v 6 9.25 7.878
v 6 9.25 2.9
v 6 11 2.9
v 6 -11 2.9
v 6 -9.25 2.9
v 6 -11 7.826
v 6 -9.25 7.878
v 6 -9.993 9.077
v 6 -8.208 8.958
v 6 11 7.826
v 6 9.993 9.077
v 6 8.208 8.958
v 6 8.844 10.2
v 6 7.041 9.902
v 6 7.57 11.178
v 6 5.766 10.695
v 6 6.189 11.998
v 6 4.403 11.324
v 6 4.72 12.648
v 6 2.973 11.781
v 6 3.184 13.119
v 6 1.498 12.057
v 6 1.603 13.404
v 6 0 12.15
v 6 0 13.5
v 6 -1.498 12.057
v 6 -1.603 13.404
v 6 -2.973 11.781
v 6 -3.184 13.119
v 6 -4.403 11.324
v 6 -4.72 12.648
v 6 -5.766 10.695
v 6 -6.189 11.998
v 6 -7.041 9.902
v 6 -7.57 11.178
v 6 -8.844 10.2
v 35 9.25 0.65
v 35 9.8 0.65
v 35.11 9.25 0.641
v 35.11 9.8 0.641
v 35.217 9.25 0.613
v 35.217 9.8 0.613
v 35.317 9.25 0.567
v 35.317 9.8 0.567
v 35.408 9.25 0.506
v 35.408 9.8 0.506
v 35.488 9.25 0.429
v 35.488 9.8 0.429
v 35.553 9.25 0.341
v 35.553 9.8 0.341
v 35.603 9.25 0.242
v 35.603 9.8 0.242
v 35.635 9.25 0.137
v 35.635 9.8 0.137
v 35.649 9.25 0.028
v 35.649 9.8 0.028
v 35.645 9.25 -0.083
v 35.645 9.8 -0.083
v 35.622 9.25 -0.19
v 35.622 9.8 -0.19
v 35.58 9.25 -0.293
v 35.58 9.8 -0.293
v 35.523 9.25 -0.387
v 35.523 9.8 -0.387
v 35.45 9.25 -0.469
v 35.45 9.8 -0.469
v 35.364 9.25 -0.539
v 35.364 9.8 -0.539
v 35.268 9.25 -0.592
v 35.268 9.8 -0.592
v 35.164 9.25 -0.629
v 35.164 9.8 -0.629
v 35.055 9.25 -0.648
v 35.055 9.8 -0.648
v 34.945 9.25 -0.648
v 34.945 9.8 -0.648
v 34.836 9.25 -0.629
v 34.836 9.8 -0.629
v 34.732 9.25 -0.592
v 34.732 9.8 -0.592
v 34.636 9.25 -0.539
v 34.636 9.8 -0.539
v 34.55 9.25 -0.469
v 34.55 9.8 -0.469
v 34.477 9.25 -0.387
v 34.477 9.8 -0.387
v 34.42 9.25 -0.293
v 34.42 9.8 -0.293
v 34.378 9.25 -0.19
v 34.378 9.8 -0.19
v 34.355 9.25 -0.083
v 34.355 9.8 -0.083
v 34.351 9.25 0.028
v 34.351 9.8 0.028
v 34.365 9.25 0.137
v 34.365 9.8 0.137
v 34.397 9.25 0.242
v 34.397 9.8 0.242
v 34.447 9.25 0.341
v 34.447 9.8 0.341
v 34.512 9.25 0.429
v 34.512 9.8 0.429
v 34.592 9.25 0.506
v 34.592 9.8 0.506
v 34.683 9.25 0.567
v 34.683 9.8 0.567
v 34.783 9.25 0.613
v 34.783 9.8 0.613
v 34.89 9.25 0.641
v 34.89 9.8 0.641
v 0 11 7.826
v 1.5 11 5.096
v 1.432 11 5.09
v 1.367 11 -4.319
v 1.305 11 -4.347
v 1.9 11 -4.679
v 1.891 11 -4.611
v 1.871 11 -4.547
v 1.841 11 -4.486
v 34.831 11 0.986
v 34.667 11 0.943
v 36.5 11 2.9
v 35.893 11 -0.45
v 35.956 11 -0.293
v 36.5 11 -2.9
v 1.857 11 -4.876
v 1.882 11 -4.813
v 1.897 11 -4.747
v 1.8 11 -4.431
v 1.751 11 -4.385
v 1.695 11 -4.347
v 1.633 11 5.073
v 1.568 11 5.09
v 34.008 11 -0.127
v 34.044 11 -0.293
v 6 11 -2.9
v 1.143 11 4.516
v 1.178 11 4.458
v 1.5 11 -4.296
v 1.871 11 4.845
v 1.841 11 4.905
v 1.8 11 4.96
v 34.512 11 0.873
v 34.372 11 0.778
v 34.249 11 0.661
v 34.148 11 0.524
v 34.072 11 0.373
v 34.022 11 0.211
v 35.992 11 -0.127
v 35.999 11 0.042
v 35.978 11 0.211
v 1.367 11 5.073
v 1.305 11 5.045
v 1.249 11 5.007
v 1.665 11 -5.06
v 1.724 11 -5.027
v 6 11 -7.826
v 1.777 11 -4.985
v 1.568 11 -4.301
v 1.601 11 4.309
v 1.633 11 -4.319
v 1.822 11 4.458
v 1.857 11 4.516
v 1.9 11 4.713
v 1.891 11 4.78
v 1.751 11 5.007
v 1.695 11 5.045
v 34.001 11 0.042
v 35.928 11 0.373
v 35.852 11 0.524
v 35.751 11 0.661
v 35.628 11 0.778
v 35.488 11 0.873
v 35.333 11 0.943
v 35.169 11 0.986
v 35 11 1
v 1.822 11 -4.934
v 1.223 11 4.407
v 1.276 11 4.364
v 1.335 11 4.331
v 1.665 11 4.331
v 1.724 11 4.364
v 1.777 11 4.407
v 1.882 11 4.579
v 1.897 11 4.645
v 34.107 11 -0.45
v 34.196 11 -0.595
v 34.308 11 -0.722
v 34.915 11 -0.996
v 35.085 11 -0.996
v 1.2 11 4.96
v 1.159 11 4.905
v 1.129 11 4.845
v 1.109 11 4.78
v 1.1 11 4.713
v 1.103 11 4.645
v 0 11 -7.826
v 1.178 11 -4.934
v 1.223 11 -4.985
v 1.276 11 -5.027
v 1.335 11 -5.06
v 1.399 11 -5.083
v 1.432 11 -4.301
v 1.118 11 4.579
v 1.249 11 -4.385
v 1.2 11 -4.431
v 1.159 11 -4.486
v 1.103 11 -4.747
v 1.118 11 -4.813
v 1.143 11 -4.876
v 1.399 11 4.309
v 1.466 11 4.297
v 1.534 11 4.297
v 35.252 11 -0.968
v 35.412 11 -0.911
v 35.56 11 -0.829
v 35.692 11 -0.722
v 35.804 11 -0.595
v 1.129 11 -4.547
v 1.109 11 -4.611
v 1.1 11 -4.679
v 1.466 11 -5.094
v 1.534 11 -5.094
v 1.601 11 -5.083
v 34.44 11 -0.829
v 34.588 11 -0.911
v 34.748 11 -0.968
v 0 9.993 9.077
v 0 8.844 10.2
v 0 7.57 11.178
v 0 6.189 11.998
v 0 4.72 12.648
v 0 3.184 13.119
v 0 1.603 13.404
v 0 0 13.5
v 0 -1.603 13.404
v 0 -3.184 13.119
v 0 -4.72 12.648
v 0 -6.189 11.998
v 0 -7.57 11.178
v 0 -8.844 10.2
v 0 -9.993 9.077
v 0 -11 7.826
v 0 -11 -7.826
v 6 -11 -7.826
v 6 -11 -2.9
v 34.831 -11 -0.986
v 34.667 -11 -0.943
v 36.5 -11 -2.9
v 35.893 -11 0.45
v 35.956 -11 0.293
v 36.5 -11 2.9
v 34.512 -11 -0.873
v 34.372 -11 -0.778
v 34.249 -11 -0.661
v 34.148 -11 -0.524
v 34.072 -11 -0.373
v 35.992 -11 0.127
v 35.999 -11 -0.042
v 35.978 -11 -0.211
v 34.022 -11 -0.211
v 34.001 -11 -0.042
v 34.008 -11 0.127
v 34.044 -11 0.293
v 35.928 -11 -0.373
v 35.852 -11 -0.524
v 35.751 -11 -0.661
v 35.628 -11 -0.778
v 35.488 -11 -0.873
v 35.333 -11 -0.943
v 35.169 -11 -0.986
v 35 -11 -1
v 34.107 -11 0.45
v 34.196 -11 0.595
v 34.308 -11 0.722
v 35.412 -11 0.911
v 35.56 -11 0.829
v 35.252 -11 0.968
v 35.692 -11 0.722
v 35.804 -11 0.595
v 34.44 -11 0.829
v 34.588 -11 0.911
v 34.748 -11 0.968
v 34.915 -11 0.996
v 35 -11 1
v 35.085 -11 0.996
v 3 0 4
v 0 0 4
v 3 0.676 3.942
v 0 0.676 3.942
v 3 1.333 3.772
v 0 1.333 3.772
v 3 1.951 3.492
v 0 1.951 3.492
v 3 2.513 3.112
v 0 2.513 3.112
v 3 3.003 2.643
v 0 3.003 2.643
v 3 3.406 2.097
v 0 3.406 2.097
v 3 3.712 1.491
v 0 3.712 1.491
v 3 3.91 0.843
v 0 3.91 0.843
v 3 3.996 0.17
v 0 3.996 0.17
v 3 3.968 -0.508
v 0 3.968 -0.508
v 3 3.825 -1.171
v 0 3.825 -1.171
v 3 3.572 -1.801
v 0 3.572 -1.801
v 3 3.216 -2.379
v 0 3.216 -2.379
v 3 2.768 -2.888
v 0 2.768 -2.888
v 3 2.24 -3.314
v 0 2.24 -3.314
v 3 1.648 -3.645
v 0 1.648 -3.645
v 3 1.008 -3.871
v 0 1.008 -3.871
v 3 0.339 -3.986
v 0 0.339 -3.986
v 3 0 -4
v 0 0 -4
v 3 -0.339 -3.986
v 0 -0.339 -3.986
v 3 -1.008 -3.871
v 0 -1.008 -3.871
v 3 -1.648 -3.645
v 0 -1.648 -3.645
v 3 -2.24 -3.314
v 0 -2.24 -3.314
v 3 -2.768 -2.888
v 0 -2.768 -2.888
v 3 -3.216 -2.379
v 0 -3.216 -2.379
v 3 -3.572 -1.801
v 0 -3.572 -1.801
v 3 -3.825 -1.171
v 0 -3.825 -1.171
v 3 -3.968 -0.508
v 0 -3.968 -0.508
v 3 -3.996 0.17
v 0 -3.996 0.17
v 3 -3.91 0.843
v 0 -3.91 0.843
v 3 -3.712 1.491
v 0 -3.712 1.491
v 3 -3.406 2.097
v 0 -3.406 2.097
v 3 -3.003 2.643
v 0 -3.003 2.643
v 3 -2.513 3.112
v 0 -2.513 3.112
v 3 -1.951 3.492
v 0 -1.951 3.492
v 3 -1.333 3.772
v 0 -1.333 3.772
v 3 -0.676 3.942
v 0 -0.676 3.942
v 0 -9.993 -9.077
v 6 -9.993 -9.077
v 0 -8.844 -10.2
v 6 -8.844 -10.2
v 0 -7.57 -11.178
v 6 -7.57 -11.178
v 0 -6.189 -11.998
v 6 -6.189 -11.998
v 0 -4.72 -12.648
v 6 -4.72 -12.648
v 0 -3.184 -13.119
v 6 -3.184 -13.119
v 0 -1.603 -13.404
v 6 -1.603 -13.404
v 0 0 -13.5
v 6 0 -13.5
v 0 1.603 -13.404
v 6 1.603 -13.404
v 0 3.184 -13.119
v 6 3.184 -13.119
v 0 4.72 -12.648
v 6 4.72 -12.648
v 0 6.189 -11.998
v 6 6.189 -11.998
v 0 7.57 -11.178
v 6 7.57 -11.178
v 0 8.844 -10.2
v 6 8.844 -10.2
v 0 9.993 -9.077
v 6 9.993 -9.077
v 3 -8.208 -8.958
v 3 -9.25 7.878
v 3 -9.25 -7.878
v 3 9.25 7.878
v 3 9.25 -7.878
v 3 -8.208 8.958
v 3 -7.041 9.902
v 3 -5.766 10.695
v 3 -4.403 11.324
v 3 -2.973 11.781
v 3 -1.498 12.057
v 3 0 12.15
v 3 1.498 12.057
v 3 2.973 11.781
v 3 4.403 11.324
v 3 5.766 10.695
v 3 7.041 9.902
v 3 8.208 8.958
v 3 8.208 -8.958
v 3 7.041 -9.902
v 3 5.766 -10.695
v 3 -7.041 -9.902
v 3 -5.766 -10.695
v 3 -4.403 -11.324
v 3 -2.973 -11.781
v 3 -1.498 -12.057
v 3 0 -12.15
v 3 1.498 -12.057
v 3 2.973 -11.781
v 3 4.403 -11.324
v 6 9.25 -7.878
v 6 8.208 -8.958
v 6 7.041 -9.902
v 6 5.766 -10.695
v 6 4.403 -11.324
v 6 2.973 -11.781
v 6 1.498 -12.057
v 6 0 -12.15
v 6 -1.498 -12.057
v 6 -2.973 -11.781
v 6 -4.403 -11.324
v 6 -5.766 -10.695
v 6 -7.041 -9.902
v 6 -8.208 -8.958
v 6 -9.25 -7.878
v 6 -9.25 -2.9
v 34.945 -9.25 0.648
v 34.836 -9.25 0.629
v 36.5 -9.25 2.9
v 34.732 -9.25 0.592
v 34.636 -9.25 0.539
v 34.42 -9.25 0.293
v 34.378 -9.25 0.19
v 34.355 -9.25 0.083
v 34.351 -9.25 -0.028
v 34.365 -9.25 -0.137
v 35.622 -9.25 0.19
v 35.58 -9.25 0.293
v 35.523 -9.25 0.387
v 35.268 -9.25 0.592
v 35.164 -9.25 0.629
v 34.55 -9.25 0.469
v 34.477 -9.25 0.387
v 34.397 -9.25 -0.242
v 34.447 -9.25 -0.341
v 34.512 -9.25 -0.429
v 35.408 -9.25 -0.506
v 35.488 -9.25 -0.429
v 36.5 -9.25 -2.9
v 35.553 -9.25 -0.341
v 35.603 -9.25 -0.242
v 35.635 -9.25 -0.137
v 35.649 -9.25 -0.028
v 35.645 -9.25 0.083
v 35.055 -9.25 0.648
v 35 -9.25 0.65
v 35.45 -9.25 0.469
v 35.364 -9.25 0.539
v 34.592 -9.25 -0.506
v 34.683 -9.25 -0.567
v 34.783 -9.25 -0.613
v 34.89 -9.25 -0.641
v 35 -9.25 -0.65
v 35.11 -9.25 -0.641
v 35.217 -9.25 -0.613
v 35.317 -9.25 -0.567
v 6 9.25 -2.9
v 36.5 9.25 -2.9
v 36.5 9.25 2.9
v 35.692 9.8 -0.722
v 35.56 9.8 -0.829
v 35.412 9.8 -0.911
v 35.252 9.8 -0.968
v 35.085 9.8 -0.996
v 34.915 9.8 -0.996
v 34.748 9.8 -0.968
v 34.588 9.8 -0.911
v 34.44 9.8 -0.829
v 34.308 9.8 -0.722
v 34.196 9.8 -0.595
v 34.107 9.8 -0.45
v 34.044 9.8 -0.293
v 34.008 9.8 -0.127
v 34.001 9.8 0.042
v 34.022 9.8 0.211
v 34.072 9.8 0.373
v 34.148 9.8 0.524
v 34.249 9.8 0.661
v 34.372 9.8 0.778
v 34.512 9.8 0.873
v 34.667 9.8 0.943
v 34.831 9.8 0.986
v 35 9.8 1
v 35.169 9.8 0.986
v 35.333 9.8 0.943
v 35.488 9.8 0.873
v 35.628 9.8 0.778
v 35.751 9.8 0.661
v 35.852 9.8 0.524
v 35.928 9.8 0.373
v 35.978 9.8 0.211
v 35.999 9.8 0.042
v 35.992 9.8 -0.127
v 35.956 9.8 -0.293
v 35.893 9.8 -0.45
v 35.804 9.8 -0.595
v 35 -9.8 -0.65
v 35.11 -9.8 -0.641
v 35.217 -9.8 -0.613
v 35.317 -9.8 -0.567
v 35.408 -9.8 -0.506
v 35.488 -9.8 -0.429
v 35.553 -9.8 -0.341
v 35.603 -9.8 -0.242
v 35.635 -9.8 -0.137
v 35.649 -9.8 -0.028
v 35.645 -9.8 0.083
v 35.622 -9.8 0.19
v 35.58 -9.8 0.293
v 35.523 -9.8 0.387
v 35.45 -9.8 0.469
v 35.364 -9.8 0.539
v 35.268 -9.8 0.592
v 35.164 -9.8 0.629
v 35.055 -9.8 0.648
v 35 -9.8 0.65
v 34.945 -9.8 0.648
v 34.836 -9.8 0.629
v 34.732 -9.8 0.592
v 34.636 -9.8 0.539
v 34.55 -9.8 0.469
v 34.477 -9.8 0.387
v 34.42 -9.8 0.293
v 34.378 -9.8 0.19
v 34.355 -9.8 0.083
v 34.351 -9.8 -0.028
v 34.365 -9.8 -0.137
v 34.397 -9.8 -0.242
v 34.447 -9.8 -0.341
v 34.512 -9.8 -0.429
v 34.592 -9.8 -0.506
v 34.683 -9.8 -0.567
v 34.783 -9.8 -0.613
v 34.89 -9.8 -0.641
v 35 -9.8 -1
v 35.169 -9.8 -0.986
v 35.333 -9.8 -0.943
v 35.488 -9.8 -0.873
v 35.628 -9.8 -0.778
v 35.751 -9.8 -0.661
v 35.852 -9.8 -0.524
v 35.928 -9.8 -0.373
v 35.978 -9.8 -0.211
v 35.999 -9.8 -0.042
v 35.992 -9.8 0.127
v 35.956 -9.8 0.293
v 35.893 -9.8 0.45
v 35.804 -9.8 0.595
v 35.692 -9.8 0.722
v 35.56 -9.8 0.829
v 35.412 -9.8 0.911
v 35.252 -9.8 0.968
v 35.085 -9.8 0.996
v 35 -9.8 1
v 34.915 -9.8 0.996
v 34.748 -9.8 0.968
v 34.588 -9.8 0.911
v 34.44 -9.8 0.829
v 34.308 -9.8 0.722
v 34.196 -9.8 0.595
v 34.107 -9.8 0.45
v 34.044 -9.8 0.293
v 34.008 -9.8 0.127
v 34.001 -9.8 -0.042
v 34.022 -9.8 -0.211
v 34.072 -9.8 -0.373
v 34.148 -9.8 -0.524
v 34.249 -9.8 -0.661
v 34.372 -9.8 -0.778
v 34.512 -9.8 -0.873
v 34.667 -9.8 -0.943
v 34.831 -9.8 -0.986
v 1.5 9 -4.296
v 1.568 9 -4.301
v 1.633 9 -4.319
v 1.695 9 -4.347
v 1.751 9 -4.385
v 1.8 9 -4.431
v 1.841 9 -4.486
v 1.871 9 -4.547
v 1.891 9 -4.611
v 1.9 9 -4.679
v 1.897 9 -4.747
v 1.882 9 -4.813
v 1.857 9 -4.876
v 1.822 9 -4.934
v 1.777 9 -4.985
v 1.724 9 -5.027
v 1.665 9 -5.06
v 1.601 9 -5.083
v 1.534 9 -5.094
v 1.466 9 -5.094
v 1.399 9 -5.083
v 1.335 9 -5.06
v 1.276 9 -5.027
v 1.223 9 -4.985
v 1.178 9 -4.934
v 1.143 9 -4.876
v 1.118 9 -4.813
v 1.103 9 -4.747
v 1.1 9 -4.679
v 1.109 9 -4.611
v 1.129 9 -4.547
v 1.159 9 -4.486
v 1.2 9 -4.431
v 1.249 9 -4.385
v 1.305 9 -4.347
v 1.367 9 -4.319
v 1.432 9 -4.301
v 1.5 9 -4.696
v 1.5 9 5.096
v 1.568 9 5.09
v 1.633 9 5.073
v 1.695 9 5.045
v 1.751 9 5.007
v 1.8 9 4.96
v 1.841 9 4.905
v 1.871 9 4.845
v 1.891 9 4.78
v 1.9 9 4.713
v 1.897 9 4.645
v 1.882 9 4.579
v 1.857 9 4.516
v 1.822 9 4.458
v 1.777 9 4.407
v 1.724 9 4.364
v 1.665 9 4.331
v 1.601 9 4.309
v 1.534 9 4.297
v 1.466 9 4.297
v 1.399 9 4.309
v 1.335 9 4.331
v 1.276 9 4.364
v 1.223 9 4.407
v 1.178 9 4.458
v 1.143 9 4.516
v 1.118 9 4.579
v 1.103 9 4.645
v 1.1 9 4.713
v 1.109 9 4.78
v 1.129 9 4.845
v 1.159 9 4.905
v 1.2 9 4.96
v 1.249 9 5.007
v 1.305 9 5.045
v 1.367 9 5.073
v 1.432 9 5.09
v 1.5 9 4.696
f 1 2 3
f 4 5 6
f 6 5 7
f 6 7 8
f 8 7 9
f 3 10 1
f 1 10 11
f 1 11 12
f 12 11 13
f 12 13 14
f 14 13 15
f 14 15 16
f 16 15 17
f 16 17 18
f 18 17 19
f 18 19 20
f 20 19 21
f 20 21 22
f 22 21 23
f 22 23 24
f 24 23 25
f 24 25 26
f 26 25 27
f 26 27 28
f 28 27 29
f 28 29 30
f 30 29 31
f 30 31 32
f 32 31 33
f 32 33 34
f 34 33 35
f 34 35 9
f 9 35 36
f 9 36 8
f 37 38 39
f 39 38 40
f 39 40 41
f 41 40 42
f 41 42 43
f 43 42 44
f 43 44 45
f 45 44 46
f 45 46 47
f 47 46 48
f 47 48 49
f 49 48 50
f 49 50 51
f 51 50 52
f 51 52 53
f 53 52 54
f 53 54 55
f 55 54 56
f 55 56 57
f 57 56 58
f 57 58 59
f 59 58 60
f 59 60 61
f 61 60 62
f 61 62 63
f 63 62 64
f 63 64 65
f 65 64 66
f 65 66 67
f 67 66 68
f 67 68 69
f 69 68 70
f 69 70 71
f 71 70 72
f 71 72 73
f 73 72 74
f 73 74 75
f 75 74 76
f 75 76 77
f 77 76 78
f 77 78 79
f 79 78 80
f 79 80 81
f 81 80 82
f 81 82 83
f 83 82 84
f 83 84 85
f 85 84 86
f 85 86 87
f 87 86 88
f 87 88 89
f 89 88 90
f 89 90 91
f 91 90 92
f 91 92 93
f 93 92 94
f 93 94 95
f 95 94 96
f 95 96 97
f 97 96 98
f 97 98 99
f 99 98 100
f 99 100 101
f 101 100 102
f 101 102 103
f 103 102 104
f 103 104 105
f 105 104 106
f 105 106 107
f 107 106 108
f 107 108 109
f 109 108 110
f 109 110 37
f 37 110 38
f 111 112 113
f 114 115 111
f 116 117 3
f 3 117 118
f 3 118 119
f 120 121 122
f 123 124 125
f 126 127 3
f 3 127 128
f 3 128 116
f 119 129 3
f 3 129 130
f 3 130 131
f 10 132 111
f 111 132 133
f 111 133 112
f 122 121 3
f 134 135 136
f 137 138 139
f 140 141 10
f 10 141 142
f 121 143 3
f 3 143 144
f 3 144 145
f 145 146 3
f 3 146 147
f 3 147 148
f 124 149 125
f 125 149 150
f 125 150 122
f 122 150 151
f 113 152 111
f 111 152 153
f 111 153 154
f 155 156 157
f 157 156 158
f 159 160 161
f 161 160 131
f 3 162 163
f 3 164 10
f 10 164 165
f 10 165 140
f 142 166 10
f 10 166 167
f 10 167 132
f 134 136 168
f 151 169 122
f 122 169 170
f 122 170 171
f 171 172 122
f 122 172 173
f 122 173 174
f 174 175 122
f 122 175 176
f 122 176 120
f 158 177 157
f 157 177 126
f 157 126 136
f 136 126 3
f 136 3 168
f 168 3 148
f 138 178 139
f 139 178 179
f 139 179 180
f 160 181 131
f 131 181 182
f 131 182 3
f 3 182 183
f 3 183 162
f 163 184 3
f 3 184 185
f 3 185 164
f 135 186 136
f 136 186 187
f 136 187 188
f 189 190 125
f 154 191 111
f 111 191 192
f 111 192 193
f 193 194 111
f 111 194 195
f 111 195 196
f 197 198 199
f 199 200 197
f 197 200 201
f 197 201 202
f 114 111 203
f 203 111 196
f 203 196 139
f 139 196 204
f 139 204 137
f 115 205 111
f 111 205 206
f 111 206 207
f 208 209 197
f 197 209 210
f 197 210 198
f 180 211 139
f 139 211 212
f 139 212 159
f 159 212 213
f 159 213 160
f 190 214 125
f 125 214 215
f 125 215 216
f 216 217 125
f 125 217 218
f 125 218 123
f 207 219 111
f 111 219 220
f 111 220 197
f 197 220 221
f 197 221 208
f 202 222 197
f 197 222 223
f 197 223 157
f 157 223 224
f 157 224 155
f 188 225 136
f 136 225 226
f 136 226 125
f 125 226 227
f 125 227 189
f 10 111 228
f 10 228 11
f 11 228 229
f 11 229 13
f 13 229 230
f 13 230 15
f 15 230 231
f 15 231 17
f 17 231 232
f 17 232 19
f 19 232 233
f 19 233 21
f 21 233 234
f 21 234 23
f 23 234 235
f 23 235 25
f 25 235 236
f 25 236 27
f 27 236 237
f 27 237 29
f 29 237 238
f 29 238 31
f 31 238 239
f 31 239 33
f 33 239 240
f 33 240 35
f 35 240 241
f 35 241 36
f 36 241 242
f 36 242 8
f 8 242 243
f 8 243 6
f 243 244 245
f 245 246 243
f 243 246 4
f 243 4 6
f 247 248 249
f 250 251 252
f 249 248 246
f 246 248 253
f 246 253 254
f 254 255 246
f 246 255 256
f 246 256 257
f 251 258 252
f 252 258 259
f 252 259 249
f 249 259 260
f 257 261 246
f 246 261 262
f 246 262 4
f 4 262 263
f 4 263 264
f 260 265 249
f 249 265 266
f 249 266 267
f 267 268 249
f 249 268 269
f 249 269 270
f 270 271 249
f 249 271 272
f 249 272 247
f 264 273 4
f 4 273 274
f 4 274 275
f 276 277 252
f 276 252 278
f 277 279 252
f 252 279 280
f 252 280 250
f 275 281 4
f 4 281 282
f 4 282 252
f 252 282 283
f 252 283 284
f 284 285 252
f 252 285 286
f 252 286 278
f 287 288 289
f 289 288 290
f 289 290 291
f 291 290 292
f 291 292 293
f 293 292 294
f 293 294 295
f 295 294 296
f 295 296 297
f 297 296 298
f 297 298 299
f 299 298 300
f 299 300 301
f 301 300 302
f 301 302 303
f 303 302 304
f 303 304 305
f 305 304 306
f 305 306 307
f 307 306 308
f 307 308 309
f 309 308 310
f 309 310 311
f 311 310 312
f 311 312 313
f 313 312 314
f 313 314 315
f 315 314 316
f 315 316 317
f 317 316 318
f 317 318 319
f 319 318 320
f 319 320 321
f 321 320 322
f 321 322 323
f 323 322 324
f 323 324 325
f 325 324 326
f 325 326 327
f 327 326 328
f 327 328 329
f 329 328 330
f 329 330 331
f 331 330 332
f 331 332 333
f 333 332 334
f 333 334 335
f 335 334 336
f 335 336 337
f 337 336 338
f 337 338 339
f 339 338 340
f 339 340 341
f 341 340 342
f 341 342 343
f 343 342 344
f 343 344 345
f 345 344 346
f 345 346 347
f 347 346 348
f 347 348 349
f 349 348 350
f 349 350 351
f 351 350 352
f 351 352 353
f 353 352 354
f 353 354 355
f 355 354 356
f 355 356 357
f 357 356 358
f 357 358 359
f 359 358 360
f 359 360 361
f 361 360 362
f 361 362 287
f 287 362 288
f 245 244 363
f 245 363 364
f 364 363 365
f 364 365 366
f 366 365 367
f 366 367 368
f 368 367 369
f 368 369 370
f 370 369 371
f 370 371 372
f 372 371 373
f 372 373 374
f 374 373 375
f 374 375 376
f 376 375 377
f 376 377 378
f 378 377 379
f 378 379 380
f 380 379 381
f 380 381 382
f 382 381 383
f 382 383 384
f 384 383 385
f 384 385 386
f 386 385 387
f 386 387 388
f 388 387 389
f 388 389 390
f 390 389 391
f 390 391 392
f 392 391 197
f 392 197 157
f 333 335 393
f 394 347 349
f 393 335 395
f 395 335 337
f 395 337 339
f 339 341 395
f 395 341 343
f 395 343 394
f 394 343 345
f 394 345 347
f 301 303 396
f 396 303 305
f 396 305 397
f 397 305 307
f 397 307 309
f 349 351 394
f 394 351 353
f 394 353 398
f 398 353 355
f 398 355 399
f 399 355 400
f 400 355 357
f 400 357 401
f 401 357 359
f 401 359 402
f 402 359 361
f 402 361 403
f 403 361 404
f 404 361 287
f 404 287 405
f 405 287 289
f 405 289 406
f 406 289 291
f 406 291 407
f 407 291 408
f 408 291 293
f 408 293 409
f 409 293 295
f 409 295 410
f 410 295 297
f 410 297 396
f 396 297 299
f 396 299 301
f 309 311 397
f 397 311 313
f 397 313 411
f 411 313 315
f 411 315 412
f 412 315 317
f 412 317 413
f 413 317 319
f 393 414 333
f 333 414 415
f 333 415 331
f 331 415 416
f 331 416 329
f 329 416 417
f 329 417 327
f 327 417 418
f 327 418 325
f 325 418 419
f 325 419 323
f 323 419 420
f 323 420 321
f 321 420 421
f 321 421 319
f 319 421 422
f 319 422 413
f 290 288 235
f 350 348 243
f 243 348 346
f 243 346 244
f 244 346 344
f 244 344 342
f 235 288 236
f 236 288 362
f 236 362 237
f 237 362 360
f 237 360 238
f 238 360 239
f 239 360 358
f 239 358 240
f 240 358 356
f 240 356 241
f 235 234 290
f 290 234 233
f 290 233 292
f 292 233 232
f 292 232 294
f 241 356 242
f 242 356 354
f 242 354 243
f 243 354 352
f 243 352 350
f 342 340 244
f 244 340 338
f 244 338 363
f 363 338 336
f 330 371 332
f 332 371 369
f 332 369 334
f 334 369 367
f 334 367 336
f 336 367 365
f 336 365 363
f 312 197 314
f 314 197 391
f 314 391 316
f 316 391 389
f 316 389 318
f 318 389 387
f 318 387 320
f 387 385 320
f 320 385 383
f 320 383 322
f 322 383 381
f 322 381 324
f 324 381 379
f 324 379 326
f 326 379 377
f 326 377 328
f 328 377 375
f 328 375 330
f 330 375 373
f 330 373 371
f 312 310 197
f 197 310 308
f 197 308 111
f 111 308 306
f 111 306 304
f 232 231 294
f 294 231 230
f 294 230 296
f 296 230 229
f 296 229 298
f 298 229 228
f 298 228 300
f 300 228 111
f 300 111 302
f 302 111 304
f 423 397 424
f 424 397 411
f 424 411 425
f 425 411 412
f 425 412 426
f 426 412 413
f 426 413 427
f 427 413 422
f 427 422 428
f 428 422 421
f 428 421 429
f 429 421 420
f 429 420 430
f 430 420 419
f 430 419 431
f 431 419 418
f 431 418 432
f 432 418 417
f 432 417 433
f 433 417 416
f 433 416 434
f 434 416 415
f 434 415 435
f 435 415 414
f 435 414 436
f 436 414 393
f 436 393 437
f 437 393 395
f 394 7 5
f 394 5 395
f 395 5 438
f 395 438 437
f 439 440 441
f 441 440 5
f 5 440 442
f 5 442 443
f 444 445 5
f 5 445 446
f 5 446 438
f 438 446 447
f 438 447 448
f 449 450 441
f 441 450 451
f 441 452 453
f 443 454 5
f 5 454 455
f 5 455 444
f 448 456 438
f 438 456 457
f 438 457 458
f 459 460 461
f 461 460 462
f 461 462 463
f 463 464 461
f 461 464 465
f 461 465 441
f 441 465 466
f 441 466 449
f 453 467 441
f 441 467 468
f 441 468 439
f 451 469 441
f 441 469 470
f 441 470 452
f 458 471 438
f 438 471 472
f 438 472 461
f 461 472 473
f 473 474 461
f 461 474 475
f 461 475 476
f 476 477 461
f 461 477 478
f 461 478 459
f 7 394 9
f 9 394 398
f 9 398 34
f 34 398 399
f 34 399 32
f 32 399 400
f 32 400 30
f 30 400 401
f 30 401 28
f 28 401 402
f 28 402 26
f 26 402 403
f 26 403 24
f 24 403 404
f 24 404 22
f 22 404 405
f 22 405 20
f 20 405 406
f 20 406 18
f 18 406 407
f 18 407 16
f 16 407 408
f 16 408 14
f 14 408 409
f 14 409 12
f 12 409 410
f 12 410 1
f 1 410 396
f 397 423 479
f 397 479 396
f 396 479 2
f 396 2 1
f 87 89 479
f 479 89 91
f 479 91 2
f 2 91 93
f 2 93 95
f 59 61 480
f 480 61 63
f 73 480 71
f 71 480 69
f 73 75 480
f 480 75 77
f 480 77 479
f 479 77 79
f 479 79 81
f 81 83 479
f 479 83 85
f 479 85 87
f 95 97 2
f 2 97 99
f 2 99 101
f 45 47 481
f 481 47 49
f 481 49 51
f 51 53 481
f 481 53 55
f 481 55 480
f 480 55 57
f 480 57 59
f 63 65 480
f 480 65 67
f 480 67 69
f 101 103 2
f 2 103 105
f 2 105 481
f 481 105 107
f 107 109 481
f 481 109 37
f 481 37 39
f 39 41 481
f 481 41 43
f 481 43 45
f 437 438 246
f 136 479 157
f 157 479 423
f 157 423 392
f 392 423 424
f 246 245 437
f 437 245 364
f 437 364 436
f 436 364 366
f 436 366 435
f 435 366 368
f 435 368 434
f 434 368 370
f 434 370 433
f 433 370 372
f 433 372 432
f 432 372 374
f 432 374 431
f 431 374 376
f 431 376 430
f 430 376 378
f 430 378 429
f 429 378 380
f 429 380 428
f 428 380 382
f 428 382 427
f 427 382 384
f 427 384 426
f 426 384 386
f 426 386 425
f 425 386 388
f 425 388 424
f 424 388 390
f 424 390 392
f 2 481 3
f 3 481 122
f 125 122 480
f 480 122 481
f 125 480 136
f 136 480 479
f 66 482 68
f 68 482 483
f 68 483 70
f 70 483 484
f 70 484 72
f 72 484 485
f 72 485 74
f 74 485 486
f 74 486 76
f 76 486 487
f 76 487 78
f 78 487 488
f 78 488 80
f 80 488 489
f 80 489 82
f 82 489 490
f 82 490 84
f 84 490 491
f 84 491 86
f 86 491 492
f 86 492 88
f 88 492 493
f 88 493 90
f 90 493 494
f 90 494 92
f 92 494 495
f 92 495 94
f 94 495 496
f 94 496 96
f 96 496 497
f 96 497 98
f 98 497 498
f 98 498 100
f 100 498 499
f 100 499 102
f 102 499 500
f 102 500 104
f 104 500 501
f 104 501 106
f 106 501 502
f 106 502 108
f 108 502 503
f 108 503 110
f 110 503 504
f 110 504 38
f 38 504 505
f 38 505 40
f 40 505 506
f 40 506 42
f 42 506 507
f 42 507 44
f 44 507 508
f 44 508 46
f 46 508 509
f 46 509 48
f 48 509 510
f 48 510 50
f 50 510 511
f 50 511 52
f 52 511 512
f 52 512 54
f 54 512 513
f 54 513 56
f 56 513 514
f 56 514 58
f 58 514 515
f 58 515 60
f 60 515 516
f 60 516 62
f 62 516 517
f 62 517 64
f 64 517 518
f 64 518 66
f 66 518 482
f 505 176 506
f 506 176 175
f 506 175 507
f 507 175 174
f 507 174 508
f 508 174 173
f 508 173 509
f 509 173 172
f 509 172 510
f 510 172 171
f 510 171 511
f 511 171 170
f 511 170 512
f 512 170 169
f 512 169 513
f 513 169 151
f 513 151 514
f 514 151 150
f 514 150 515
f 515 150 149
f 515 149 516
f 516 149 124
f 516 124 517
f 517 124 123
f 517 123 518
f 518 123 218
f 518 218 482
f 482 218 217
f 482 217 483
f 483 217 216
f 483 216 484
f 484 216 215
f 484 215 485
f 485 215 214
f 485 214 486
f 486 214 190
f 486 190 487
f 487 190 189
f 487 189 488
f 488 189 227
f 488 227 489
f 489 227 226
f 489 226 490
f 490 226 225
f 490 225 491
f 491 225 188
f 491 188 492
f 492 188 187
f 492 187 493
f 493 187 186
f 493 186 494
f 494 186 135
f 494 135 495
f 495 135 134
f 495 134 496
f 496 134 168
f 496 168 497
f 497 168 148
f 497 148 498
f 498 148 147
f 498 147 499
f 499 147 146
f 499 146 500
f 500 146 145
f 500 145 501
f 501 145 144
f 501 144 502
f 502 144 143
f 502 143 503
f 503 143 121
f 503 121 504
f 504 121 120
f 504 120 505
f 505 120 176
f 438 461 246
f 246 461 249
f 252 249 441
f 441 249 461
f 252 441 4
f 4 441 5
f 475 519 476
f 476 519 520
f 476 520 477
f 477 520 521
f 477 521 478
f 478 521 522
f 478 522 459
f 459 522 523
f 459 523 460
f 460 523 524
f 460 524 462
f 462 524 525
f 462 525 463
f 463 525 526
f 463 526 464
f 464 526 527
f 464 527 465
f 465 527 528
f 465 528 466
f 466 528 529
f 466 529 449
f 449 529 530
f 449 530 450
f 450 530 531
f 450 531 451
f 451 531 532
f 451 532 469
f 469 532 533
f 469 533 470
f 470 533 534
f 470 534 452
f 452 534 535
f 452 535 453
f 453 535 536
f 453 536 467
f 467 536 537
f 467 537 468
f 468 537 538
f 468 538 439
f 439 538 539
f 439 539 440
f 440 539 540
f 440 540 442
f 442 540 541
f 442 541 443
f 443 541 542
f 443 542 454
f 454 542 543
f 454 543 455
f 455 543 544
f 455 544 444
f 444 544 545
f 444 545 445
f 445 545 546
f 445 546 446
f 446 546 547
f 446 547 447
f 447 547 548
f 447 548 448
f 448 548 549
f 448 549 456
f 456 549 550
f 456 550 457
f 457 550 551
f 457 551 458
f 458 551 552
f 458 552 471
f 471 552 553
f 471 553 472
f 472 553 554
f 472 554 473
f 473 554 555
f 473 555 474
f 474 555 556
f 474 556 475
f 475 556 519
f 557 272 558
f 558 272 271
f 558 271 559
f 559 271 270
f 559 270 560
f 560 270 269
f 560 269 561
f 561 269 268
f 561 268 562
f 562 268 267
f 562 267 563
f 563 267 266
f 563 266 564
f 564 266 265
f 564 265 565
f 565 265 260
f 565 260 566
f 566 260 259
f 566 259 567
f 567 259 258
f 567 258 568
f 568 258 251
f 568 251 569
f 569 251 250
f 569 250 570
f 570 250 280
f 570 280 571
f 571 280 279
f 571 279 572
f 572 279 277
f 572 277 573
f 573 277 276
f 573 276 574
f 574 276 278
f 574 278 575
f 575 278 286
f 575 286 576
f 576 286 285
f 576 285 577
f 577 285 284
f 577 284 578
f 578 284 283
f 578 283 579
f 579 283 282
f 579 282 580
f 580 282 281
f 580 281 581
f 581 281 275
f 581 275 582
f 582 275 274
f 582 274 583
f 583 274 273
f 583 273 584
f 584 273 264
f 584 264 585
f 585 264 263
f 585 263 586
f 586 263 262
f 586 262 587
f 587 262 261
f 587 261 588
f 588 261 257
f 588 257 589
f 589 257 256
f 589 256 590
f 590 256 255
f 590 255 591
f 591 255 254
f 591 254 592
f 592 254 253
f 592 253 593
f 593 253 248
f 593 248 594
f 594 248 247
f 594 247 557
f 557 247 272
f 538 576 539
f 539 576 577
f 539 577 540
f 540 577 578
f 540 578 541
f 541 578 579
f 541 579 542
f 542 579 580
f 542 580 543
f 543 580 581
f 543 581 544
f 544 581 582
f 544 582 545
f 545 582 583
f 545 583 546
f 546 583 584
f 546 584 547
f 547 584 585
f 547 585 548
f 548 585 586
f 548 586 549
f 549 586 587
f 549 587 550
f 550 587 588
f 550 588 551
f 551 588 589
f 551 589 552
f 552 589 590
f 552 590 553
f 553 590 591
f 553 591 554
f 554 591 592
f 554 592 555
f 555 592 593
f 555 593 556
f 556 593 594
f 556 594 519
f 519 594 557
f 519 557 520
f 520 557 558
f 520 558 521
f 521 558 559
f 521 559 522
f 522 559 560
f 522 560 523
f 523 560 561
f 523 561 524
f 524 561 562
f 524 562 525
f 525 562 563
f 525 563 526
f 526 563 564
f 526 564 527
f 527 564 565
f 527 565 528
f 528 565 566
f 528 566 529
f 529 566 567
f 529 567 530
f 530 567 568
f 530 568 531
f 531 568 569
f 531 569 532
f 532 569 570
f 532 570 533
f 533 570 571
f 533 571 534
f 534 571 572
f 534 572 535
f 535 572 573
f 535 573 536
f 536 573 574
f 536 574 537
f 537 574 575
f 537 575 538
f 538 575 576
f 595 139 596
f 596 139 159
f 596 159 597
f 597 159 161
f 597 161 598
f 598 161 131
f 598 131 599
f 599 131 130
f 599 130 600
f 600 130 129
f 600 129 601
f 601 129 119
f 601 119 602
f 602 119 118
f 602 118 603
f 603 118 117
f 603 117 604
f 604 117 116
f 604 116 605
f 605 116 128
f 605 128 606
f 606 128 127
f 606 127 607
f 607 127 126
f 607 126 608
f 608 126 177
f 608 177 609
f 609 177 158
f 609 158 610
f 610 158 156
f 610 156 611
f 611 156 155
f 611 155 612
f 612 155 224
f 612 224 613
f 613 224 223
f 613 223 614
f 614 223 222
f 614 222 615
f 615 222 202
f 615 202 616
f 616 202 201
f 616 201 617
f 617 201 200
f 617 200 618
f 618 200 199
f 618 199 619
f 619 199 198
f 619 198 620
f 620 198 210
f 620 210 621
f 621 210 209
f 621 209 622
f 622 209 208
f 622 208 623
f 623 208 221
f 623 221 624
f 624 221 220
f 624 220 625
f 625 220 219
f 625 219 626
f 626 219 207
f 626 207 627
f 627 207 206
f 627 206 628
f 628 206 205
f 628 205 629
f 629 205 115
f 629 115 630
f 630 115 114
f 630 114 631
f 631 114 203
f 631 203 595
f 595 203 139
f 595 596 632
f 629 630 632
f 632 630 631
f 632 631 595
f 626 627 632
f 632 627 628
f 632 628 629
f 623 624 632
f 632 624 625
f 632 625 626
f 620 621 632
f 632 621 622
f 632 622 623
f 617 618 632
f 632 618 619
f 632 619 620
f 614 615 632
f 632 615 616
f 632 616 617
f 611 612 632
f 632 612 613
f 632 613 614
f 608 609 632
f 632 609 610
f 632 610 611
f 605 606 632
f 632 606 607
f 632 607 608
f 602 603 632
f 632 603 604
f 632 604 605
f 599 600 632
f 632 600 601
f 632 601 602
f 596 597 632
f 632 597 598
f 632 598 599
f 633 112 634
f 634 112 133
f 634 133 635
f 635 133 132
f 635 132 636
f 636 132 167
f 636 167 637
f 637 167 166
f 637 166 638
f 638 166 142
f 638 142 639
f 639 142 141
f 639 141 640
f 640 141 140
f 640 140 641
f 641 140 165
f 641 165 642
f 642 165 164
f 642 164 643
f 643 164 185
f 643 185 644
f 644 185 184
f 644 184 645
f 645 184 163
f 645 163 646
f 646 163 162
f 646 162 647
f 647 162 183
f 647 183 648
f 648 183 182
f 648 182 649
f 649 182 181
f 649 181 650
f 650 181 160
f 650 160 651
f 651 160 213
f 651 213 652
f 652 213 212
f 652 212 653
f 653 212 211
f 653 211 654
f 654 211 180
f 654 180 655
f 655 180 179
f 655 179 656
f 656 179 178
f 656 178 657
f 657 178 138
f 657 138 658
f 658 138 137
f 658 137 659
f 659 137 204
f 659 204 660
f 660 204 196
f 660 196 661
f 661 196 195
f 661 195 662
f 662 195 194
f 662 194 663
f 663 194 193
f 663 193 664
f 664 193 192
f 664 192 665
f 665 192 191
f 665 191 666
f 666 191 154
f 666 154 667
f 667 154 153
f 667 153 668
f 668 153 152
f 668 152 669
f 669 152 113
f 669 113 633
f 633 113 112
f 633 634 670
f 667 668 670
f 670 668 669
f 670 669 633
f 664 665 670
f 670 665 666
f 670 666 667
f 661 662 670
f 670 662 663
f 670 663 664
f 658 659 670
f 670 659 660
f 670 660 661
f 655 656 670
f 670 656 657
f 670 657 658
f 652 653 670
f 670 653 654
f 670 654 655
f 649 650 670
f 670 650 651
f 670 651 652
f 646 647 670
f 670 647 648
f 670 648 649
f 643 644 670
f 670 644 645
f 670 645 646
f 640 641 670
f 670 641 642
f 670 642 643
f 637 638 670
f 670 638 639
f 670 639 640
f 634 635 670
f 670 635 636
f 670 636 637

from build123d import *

# Parameters (mm, degrees)
SKETCH_1_R          = 4
EXTRUDE_1_DEPTH     = 3
EXTRUDE_2_DEPTH     = 3
SKETCH_3_W          = 36.5
SKETCH_3_H          = 5.8
SKETCH_3_R          = 0.65
EXTRUDE_3_DEPTH     = 1.75
SKETCH_3_4_R        = 1
CUT_EXTRUDE_1_DEPTH = 1.2
EXTRUDE_START       = -22
SKETCH_3_5_W        = 36.5
SKETCH_3_5_H        = 5.8
SKETCH_3_5_R        = 0.65
EXTRUDE_4_DEPTH     = 1.75
CUT_EXTRUDE_START   = -20.8
SKETCH_3_6_R        = 1
CUT_EXTRUDE_2_DEPTH = 1.2
SKETCH_5_R          = 0.4
CUT_EXTRUDE_3_DEPTH = 2


with BuildPart() as part:
    # 草图1 → 凸台-拉伸1 (new body)
    with BuildSketch(Plane(origin=(0, 0, 0), x_dir=(0, 0, -1), z_dir=(1, 0, 0))):
        with BuildLine():
            ThreePointArc((-13.5, 3.1e-08), (-11.998004256, -6.188529216), (-7.826237921, -11))
            Line((-7.826237921, -11), (7.826237921, -11))
            ThreePointArc((7.826237921, -11), (11.998004249, -6.18852923), (13.5, 0))
            ThreePointArc((13.5, 0), (11.998004249, 6.18852923), (7.826237921, 11))
            Line((7.826237921, 11), (-7.826237921, 11))
            ThreePointArc((-7.826237921, 11), (-11.998004242, 6.188529244), (-13.5, 3.1e-08))
        make_face()
        Circle(SKETCH_1_R, mode=Mode.SUBTRACT)
    extrude(amount=EXTRUDE_1_DEPTH)

    # 草图2 → 凸台-拉伸2 (add)
    with BuildSketch(Plane(origin=(3, 0, 0), x_dir=(0, 0, -1), z_dir=(1, 0, 0))):
        with BuildLine():
            ThreePointArc((-5.159699604, 11), (-6.577220881, 10.215804691), (-7.877816956, 9.25))
            Line((-7.877816956, 9.25), (7.877816956, 9.25))
            ThreePointArc((7.877816956, 9.25), (6.577220881, 10.215804691), (5.159699604, 11))
            Line((5.159699604, 11), (-5.159699604, 11))
        make_face()
        with BuildLine():
            Line((-9.83298022, 9.25), (-7.877816956, 9.25))
            ThreePointArc((-7.877816956, 9.25), (-6.577220881, 10.215804691), (-5.159699604, 11))
            Line((-5.159699604, 11), (-7.826237921, 11))
            ThreePointArc((-7.826237921, 11), (-8.87285869, 10.174594767), (-9.83298022, 9.25))
        make_face()
        with BuildLine():
            Line((-12.15, 5.884513574), (-12.15, 2.4e-08))
            ThreePointArc((-12.15, 2.4e-08), (-11.030366626, 5.09445896), (-7.877816956, 9.25))
            Line((-7.877816956, 9.25), (-9.83298022, 9.25))
            ThreePointArc((-9.83298022, 9.25), (-11.119553928, 7.65542425), (-12.15, 5.884513574))
        make_face()
        with BuildLine():
            ThreePointArc((-12.15, 5.884513574), (-13.5, 0), (-12.15, -5.884513574))
            Line((-12.15, -5.884513574), (-12.15, 2.4e-08))
            Line((-12.15, 2.4e-08), (-12.15, 5.884513574))
        make_face()
        with BuildLine():
            ThreePointArc((-12.15, -5.884513574), (-11.119553928, -7.65542425), (-9.83298022, -9.25))
            Line((-9.83298022, -9.25), (-7.877816956, -9.25))
            ThreePointArc((-7.877816956, -9.25), (-11.030366636, -5.094458939), (-12.15, 2.4e-08))
            Line((-12.15, 2.4e-08), (-12.15, -5.884513574))
        make_face()
        with BuildLine():
            Line((-7.877816956, -9.25), (-9.83298022, -9.25))
            ThreePointArc((-9.83298022, -9.25), (-8.87285869, -10.174594767), (-7.826237921, -11))
            Line((-7.826237921, -11), (-5.159699604, -11))
            ThreePointArc((-5.159699604, -11), (-6.577220881, -10.215804691), (-7.877816956, -9.25))
        make_face()
        with BuildLine():
            Line((7.877816956, -9.25), (-7.877816956, -9.25))
            ThreePointArc((-7.877816956, -9.25), (-6.577220881, -10.215804691), (-5.159699604, -11))
            Line((-5.159699604, -11), (5.159699604, -11))
            ThreePointArc((5.159699604, -11), (6.577220881, -10.215804691), (7.877816956, -9.25))
        make_face()
        with BuildLine():
            Line((9.83298022, -9.25), (7.877816956, -9.25))
            ThreePointArc((7.877816956, -9.25), (6.577220881, -10.215804691), (5.159699604, -11))
            Line((5.159699604, -11), (7.826237921, -11))
            ThreePointArc((7.826237921, -11), (8.87285869, -10.174594767), (9.83298022, -9.25))
        make_face()
        with BuildLine():
            ThreePointArc((12.15, 0), (11.030366631, -5.09445895), (7.877816956, -9.25))
            Line((7.877816956, -9.25), (9.83298022, -9.25))
            ThreePointArc((9.83298022, -9.25), (11.119553928, -7.65542425), (12.15, -5.884513574))
            Line((12.15, -5.884513574), (12.15, 0))
        make_face()
        with BuildLine():
            Line((12.15, 5.884513574), (12.15, 0))
            Line((12.15, 0), (12.15, -5.884513574))
            ThreePointArc((12.15, -5.884513574), (13.5, 0), (12.15, 5.884513574))
        make_face()
        with BuildLine():
            ThreePointArc((7.877816956, 9.25), (11.030366631, 5.09445895), (12.15, 0))
            Line((12.15, 0), (12.15, 5.884513574))
            ThreePointArc((12.15, 5.884513574), (11.119553928, 7.65542425), (9.83298022, 9.25))
            Line((9.83298022, 9.25), (7.877816956, 9.25))
        make_face()
        with BuildLine():
            ThreePointArc((5.159699604, 11), (6.577220881, 10.215804691), (7.877816956, 9.25))
            Line((7.877816956, 9.25), (9.83298022, 9.25))
            ThreePointArc((9.83298022, 9.25), (8.87285869, 10.174594767), (7.826237921, 11))
            Line((7.826237921, 11), (5.159699604, 11))
        make_face()
    extrude(amount=EXTRUDE_2_DEPTH)

    # 草图3 → 凸台-拉伸3 (add)
    with BuildSketch(Plane(origin=(0, 11, 0), x_dir=(1, 0, 0), z_dir=(0, 1, 0))):
        with Locations((18.25, 0)):
            Rectangle(SKETCH_3_W, SKETCH_3_H)
        with Locations(Location((35, 0, 0), (0, 0, 270))):
            Circle(SKETCH_3_R, mode=Mode.SUBTRACT)
    extrude(amount=-EXTRUDE_3_DEPTH)

    # 草图3<4> → 切除-拉伸1 (cut)
    with BuildSketch(Plane(origin=(0, 11, 0), x_dir=(1, 0, 0), z_dir=(0, 1, 0))):
        with Locations(Location((35, 0, 0), (0, 0, 270))):
            Circle(SKETCH_3_4_R)
    extrude(amount=-CUT_EXTRUDE_1_DEPTH, mode=Mode.SUBTRACT)

    # 草图3<5> → 凸台-拉伸4 (add)
    with BuildSketch(Plane(origin=(0, 11, 0), x_dir=(1, 0, 0), z_dir=(0, 1, 0)).offset(EXTRUDE_START)):
        with Locations((18.25, 0)):
            Rectangle(SKETCH_3_5_W, SKETCH_3_5_H)
        with Locations(Location((35, 0, 0), (0, 0, 270))):
            Circle(SKETCH_3_5_R, mode=Mode.SUBTRACT)
    extrude(amount=EXTRUDE_4_DEPTH)

    # 草图3<6> → 切除-拉伸2 (cut)
    with BuildSketch(Plane(origin=(0, 11, 0), x_dir=(1, 0, 0), z_dir=(0, 1, 0)).offset(CUT_EXTRUDE_START)):
        with Locations(Location((35, 0, 0), (0, 0, 270))):
            Circle(SKETCH_3_6_R)
    extrude(amount=-CUT_EXTRUDE_2_DEPTH, mode=Mode.SUBTRACT)

    # 草图5 → 切除-拉伸3 (cut)
    with BuildSketch(Plane(origin=(0, 11, 0), x_dir=(1, 0, 0), z_dir=(0, 1, 0))):
        with Locations(Location((1.5, -4.695742753, 0), (0, 0, 270))):
            Circle(SKETCH_5_R)
        with Locations(Location((1.5, 4.695742753, 0), (0, 0, 270))):
            Circle(SKETCH_5_R)
    extrude(amount=-CUT_EXTRUDE_3_DEPTH, mode=Mode.SUBTRACT)


solid = part.part
